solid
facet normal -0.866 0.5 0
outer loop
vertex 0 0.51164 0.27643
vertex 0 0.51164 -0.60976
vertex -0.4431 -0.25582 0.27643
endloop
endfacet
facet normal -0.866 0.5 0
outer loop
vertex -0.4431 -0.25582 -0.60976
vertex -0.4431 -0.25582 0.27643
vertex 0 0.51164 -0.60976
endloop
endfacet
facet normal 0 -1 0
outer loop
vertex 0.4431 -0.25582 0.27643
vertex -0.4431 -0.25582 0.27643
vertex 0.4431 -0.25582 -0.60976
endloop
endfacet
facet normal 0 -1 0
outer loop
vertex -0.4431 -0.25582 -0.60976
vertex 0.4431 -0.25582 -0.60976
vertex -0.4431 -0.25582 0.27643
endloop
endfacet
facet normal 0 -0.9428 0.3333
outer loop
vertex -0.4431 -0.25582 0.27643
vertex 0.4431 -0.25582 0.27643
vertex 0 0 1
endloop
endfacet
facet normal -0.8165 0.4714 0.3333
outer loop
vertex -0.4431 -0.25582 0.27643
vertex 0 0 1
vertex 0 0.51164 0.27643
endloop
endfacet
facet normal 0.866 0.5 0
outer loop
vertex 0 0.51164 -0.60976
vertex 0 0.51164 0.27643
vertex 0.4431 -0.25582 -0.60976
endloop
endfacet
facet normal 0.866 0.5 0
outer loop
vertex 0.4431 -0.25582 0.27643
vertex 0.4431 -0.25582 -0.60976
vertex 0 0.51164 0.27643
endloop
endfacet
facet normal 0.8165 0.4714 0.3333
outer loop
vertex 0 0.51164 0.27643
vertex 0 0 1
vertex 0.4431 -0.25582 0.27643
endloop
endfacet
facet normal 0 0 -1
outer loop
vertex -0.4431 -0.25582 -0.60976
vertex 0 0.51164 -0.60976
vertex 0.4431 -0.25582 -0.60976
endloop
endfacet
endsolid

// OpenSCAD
polyhedron( points = [[-0.443095213333996, -0.255821140699686, 0.276428546634524], [1.69652469874743e-11, 0.511642281361701, 0.276428546634524], [0.443095213276042, -0.255821140699686, 0.276428546634524], [-0.443095213294209, -0.255821140676715, -0.609761879975514], [6.51598739538516e-11, 0.511642281399235, -0.609761879912756], [0.443095213276042, -0.255821140676715, -0.609761880015304], [-6.00563485949649e-12, -8.13546531150335e-12, 1.0]], faces = [[0, 1, 4, 3], [0, 3, 5, 2], [0, 2, 6], [0, 6, 1], [1, 2, 5, 4], [1, 6, 2], [3, 4, 5]]);
